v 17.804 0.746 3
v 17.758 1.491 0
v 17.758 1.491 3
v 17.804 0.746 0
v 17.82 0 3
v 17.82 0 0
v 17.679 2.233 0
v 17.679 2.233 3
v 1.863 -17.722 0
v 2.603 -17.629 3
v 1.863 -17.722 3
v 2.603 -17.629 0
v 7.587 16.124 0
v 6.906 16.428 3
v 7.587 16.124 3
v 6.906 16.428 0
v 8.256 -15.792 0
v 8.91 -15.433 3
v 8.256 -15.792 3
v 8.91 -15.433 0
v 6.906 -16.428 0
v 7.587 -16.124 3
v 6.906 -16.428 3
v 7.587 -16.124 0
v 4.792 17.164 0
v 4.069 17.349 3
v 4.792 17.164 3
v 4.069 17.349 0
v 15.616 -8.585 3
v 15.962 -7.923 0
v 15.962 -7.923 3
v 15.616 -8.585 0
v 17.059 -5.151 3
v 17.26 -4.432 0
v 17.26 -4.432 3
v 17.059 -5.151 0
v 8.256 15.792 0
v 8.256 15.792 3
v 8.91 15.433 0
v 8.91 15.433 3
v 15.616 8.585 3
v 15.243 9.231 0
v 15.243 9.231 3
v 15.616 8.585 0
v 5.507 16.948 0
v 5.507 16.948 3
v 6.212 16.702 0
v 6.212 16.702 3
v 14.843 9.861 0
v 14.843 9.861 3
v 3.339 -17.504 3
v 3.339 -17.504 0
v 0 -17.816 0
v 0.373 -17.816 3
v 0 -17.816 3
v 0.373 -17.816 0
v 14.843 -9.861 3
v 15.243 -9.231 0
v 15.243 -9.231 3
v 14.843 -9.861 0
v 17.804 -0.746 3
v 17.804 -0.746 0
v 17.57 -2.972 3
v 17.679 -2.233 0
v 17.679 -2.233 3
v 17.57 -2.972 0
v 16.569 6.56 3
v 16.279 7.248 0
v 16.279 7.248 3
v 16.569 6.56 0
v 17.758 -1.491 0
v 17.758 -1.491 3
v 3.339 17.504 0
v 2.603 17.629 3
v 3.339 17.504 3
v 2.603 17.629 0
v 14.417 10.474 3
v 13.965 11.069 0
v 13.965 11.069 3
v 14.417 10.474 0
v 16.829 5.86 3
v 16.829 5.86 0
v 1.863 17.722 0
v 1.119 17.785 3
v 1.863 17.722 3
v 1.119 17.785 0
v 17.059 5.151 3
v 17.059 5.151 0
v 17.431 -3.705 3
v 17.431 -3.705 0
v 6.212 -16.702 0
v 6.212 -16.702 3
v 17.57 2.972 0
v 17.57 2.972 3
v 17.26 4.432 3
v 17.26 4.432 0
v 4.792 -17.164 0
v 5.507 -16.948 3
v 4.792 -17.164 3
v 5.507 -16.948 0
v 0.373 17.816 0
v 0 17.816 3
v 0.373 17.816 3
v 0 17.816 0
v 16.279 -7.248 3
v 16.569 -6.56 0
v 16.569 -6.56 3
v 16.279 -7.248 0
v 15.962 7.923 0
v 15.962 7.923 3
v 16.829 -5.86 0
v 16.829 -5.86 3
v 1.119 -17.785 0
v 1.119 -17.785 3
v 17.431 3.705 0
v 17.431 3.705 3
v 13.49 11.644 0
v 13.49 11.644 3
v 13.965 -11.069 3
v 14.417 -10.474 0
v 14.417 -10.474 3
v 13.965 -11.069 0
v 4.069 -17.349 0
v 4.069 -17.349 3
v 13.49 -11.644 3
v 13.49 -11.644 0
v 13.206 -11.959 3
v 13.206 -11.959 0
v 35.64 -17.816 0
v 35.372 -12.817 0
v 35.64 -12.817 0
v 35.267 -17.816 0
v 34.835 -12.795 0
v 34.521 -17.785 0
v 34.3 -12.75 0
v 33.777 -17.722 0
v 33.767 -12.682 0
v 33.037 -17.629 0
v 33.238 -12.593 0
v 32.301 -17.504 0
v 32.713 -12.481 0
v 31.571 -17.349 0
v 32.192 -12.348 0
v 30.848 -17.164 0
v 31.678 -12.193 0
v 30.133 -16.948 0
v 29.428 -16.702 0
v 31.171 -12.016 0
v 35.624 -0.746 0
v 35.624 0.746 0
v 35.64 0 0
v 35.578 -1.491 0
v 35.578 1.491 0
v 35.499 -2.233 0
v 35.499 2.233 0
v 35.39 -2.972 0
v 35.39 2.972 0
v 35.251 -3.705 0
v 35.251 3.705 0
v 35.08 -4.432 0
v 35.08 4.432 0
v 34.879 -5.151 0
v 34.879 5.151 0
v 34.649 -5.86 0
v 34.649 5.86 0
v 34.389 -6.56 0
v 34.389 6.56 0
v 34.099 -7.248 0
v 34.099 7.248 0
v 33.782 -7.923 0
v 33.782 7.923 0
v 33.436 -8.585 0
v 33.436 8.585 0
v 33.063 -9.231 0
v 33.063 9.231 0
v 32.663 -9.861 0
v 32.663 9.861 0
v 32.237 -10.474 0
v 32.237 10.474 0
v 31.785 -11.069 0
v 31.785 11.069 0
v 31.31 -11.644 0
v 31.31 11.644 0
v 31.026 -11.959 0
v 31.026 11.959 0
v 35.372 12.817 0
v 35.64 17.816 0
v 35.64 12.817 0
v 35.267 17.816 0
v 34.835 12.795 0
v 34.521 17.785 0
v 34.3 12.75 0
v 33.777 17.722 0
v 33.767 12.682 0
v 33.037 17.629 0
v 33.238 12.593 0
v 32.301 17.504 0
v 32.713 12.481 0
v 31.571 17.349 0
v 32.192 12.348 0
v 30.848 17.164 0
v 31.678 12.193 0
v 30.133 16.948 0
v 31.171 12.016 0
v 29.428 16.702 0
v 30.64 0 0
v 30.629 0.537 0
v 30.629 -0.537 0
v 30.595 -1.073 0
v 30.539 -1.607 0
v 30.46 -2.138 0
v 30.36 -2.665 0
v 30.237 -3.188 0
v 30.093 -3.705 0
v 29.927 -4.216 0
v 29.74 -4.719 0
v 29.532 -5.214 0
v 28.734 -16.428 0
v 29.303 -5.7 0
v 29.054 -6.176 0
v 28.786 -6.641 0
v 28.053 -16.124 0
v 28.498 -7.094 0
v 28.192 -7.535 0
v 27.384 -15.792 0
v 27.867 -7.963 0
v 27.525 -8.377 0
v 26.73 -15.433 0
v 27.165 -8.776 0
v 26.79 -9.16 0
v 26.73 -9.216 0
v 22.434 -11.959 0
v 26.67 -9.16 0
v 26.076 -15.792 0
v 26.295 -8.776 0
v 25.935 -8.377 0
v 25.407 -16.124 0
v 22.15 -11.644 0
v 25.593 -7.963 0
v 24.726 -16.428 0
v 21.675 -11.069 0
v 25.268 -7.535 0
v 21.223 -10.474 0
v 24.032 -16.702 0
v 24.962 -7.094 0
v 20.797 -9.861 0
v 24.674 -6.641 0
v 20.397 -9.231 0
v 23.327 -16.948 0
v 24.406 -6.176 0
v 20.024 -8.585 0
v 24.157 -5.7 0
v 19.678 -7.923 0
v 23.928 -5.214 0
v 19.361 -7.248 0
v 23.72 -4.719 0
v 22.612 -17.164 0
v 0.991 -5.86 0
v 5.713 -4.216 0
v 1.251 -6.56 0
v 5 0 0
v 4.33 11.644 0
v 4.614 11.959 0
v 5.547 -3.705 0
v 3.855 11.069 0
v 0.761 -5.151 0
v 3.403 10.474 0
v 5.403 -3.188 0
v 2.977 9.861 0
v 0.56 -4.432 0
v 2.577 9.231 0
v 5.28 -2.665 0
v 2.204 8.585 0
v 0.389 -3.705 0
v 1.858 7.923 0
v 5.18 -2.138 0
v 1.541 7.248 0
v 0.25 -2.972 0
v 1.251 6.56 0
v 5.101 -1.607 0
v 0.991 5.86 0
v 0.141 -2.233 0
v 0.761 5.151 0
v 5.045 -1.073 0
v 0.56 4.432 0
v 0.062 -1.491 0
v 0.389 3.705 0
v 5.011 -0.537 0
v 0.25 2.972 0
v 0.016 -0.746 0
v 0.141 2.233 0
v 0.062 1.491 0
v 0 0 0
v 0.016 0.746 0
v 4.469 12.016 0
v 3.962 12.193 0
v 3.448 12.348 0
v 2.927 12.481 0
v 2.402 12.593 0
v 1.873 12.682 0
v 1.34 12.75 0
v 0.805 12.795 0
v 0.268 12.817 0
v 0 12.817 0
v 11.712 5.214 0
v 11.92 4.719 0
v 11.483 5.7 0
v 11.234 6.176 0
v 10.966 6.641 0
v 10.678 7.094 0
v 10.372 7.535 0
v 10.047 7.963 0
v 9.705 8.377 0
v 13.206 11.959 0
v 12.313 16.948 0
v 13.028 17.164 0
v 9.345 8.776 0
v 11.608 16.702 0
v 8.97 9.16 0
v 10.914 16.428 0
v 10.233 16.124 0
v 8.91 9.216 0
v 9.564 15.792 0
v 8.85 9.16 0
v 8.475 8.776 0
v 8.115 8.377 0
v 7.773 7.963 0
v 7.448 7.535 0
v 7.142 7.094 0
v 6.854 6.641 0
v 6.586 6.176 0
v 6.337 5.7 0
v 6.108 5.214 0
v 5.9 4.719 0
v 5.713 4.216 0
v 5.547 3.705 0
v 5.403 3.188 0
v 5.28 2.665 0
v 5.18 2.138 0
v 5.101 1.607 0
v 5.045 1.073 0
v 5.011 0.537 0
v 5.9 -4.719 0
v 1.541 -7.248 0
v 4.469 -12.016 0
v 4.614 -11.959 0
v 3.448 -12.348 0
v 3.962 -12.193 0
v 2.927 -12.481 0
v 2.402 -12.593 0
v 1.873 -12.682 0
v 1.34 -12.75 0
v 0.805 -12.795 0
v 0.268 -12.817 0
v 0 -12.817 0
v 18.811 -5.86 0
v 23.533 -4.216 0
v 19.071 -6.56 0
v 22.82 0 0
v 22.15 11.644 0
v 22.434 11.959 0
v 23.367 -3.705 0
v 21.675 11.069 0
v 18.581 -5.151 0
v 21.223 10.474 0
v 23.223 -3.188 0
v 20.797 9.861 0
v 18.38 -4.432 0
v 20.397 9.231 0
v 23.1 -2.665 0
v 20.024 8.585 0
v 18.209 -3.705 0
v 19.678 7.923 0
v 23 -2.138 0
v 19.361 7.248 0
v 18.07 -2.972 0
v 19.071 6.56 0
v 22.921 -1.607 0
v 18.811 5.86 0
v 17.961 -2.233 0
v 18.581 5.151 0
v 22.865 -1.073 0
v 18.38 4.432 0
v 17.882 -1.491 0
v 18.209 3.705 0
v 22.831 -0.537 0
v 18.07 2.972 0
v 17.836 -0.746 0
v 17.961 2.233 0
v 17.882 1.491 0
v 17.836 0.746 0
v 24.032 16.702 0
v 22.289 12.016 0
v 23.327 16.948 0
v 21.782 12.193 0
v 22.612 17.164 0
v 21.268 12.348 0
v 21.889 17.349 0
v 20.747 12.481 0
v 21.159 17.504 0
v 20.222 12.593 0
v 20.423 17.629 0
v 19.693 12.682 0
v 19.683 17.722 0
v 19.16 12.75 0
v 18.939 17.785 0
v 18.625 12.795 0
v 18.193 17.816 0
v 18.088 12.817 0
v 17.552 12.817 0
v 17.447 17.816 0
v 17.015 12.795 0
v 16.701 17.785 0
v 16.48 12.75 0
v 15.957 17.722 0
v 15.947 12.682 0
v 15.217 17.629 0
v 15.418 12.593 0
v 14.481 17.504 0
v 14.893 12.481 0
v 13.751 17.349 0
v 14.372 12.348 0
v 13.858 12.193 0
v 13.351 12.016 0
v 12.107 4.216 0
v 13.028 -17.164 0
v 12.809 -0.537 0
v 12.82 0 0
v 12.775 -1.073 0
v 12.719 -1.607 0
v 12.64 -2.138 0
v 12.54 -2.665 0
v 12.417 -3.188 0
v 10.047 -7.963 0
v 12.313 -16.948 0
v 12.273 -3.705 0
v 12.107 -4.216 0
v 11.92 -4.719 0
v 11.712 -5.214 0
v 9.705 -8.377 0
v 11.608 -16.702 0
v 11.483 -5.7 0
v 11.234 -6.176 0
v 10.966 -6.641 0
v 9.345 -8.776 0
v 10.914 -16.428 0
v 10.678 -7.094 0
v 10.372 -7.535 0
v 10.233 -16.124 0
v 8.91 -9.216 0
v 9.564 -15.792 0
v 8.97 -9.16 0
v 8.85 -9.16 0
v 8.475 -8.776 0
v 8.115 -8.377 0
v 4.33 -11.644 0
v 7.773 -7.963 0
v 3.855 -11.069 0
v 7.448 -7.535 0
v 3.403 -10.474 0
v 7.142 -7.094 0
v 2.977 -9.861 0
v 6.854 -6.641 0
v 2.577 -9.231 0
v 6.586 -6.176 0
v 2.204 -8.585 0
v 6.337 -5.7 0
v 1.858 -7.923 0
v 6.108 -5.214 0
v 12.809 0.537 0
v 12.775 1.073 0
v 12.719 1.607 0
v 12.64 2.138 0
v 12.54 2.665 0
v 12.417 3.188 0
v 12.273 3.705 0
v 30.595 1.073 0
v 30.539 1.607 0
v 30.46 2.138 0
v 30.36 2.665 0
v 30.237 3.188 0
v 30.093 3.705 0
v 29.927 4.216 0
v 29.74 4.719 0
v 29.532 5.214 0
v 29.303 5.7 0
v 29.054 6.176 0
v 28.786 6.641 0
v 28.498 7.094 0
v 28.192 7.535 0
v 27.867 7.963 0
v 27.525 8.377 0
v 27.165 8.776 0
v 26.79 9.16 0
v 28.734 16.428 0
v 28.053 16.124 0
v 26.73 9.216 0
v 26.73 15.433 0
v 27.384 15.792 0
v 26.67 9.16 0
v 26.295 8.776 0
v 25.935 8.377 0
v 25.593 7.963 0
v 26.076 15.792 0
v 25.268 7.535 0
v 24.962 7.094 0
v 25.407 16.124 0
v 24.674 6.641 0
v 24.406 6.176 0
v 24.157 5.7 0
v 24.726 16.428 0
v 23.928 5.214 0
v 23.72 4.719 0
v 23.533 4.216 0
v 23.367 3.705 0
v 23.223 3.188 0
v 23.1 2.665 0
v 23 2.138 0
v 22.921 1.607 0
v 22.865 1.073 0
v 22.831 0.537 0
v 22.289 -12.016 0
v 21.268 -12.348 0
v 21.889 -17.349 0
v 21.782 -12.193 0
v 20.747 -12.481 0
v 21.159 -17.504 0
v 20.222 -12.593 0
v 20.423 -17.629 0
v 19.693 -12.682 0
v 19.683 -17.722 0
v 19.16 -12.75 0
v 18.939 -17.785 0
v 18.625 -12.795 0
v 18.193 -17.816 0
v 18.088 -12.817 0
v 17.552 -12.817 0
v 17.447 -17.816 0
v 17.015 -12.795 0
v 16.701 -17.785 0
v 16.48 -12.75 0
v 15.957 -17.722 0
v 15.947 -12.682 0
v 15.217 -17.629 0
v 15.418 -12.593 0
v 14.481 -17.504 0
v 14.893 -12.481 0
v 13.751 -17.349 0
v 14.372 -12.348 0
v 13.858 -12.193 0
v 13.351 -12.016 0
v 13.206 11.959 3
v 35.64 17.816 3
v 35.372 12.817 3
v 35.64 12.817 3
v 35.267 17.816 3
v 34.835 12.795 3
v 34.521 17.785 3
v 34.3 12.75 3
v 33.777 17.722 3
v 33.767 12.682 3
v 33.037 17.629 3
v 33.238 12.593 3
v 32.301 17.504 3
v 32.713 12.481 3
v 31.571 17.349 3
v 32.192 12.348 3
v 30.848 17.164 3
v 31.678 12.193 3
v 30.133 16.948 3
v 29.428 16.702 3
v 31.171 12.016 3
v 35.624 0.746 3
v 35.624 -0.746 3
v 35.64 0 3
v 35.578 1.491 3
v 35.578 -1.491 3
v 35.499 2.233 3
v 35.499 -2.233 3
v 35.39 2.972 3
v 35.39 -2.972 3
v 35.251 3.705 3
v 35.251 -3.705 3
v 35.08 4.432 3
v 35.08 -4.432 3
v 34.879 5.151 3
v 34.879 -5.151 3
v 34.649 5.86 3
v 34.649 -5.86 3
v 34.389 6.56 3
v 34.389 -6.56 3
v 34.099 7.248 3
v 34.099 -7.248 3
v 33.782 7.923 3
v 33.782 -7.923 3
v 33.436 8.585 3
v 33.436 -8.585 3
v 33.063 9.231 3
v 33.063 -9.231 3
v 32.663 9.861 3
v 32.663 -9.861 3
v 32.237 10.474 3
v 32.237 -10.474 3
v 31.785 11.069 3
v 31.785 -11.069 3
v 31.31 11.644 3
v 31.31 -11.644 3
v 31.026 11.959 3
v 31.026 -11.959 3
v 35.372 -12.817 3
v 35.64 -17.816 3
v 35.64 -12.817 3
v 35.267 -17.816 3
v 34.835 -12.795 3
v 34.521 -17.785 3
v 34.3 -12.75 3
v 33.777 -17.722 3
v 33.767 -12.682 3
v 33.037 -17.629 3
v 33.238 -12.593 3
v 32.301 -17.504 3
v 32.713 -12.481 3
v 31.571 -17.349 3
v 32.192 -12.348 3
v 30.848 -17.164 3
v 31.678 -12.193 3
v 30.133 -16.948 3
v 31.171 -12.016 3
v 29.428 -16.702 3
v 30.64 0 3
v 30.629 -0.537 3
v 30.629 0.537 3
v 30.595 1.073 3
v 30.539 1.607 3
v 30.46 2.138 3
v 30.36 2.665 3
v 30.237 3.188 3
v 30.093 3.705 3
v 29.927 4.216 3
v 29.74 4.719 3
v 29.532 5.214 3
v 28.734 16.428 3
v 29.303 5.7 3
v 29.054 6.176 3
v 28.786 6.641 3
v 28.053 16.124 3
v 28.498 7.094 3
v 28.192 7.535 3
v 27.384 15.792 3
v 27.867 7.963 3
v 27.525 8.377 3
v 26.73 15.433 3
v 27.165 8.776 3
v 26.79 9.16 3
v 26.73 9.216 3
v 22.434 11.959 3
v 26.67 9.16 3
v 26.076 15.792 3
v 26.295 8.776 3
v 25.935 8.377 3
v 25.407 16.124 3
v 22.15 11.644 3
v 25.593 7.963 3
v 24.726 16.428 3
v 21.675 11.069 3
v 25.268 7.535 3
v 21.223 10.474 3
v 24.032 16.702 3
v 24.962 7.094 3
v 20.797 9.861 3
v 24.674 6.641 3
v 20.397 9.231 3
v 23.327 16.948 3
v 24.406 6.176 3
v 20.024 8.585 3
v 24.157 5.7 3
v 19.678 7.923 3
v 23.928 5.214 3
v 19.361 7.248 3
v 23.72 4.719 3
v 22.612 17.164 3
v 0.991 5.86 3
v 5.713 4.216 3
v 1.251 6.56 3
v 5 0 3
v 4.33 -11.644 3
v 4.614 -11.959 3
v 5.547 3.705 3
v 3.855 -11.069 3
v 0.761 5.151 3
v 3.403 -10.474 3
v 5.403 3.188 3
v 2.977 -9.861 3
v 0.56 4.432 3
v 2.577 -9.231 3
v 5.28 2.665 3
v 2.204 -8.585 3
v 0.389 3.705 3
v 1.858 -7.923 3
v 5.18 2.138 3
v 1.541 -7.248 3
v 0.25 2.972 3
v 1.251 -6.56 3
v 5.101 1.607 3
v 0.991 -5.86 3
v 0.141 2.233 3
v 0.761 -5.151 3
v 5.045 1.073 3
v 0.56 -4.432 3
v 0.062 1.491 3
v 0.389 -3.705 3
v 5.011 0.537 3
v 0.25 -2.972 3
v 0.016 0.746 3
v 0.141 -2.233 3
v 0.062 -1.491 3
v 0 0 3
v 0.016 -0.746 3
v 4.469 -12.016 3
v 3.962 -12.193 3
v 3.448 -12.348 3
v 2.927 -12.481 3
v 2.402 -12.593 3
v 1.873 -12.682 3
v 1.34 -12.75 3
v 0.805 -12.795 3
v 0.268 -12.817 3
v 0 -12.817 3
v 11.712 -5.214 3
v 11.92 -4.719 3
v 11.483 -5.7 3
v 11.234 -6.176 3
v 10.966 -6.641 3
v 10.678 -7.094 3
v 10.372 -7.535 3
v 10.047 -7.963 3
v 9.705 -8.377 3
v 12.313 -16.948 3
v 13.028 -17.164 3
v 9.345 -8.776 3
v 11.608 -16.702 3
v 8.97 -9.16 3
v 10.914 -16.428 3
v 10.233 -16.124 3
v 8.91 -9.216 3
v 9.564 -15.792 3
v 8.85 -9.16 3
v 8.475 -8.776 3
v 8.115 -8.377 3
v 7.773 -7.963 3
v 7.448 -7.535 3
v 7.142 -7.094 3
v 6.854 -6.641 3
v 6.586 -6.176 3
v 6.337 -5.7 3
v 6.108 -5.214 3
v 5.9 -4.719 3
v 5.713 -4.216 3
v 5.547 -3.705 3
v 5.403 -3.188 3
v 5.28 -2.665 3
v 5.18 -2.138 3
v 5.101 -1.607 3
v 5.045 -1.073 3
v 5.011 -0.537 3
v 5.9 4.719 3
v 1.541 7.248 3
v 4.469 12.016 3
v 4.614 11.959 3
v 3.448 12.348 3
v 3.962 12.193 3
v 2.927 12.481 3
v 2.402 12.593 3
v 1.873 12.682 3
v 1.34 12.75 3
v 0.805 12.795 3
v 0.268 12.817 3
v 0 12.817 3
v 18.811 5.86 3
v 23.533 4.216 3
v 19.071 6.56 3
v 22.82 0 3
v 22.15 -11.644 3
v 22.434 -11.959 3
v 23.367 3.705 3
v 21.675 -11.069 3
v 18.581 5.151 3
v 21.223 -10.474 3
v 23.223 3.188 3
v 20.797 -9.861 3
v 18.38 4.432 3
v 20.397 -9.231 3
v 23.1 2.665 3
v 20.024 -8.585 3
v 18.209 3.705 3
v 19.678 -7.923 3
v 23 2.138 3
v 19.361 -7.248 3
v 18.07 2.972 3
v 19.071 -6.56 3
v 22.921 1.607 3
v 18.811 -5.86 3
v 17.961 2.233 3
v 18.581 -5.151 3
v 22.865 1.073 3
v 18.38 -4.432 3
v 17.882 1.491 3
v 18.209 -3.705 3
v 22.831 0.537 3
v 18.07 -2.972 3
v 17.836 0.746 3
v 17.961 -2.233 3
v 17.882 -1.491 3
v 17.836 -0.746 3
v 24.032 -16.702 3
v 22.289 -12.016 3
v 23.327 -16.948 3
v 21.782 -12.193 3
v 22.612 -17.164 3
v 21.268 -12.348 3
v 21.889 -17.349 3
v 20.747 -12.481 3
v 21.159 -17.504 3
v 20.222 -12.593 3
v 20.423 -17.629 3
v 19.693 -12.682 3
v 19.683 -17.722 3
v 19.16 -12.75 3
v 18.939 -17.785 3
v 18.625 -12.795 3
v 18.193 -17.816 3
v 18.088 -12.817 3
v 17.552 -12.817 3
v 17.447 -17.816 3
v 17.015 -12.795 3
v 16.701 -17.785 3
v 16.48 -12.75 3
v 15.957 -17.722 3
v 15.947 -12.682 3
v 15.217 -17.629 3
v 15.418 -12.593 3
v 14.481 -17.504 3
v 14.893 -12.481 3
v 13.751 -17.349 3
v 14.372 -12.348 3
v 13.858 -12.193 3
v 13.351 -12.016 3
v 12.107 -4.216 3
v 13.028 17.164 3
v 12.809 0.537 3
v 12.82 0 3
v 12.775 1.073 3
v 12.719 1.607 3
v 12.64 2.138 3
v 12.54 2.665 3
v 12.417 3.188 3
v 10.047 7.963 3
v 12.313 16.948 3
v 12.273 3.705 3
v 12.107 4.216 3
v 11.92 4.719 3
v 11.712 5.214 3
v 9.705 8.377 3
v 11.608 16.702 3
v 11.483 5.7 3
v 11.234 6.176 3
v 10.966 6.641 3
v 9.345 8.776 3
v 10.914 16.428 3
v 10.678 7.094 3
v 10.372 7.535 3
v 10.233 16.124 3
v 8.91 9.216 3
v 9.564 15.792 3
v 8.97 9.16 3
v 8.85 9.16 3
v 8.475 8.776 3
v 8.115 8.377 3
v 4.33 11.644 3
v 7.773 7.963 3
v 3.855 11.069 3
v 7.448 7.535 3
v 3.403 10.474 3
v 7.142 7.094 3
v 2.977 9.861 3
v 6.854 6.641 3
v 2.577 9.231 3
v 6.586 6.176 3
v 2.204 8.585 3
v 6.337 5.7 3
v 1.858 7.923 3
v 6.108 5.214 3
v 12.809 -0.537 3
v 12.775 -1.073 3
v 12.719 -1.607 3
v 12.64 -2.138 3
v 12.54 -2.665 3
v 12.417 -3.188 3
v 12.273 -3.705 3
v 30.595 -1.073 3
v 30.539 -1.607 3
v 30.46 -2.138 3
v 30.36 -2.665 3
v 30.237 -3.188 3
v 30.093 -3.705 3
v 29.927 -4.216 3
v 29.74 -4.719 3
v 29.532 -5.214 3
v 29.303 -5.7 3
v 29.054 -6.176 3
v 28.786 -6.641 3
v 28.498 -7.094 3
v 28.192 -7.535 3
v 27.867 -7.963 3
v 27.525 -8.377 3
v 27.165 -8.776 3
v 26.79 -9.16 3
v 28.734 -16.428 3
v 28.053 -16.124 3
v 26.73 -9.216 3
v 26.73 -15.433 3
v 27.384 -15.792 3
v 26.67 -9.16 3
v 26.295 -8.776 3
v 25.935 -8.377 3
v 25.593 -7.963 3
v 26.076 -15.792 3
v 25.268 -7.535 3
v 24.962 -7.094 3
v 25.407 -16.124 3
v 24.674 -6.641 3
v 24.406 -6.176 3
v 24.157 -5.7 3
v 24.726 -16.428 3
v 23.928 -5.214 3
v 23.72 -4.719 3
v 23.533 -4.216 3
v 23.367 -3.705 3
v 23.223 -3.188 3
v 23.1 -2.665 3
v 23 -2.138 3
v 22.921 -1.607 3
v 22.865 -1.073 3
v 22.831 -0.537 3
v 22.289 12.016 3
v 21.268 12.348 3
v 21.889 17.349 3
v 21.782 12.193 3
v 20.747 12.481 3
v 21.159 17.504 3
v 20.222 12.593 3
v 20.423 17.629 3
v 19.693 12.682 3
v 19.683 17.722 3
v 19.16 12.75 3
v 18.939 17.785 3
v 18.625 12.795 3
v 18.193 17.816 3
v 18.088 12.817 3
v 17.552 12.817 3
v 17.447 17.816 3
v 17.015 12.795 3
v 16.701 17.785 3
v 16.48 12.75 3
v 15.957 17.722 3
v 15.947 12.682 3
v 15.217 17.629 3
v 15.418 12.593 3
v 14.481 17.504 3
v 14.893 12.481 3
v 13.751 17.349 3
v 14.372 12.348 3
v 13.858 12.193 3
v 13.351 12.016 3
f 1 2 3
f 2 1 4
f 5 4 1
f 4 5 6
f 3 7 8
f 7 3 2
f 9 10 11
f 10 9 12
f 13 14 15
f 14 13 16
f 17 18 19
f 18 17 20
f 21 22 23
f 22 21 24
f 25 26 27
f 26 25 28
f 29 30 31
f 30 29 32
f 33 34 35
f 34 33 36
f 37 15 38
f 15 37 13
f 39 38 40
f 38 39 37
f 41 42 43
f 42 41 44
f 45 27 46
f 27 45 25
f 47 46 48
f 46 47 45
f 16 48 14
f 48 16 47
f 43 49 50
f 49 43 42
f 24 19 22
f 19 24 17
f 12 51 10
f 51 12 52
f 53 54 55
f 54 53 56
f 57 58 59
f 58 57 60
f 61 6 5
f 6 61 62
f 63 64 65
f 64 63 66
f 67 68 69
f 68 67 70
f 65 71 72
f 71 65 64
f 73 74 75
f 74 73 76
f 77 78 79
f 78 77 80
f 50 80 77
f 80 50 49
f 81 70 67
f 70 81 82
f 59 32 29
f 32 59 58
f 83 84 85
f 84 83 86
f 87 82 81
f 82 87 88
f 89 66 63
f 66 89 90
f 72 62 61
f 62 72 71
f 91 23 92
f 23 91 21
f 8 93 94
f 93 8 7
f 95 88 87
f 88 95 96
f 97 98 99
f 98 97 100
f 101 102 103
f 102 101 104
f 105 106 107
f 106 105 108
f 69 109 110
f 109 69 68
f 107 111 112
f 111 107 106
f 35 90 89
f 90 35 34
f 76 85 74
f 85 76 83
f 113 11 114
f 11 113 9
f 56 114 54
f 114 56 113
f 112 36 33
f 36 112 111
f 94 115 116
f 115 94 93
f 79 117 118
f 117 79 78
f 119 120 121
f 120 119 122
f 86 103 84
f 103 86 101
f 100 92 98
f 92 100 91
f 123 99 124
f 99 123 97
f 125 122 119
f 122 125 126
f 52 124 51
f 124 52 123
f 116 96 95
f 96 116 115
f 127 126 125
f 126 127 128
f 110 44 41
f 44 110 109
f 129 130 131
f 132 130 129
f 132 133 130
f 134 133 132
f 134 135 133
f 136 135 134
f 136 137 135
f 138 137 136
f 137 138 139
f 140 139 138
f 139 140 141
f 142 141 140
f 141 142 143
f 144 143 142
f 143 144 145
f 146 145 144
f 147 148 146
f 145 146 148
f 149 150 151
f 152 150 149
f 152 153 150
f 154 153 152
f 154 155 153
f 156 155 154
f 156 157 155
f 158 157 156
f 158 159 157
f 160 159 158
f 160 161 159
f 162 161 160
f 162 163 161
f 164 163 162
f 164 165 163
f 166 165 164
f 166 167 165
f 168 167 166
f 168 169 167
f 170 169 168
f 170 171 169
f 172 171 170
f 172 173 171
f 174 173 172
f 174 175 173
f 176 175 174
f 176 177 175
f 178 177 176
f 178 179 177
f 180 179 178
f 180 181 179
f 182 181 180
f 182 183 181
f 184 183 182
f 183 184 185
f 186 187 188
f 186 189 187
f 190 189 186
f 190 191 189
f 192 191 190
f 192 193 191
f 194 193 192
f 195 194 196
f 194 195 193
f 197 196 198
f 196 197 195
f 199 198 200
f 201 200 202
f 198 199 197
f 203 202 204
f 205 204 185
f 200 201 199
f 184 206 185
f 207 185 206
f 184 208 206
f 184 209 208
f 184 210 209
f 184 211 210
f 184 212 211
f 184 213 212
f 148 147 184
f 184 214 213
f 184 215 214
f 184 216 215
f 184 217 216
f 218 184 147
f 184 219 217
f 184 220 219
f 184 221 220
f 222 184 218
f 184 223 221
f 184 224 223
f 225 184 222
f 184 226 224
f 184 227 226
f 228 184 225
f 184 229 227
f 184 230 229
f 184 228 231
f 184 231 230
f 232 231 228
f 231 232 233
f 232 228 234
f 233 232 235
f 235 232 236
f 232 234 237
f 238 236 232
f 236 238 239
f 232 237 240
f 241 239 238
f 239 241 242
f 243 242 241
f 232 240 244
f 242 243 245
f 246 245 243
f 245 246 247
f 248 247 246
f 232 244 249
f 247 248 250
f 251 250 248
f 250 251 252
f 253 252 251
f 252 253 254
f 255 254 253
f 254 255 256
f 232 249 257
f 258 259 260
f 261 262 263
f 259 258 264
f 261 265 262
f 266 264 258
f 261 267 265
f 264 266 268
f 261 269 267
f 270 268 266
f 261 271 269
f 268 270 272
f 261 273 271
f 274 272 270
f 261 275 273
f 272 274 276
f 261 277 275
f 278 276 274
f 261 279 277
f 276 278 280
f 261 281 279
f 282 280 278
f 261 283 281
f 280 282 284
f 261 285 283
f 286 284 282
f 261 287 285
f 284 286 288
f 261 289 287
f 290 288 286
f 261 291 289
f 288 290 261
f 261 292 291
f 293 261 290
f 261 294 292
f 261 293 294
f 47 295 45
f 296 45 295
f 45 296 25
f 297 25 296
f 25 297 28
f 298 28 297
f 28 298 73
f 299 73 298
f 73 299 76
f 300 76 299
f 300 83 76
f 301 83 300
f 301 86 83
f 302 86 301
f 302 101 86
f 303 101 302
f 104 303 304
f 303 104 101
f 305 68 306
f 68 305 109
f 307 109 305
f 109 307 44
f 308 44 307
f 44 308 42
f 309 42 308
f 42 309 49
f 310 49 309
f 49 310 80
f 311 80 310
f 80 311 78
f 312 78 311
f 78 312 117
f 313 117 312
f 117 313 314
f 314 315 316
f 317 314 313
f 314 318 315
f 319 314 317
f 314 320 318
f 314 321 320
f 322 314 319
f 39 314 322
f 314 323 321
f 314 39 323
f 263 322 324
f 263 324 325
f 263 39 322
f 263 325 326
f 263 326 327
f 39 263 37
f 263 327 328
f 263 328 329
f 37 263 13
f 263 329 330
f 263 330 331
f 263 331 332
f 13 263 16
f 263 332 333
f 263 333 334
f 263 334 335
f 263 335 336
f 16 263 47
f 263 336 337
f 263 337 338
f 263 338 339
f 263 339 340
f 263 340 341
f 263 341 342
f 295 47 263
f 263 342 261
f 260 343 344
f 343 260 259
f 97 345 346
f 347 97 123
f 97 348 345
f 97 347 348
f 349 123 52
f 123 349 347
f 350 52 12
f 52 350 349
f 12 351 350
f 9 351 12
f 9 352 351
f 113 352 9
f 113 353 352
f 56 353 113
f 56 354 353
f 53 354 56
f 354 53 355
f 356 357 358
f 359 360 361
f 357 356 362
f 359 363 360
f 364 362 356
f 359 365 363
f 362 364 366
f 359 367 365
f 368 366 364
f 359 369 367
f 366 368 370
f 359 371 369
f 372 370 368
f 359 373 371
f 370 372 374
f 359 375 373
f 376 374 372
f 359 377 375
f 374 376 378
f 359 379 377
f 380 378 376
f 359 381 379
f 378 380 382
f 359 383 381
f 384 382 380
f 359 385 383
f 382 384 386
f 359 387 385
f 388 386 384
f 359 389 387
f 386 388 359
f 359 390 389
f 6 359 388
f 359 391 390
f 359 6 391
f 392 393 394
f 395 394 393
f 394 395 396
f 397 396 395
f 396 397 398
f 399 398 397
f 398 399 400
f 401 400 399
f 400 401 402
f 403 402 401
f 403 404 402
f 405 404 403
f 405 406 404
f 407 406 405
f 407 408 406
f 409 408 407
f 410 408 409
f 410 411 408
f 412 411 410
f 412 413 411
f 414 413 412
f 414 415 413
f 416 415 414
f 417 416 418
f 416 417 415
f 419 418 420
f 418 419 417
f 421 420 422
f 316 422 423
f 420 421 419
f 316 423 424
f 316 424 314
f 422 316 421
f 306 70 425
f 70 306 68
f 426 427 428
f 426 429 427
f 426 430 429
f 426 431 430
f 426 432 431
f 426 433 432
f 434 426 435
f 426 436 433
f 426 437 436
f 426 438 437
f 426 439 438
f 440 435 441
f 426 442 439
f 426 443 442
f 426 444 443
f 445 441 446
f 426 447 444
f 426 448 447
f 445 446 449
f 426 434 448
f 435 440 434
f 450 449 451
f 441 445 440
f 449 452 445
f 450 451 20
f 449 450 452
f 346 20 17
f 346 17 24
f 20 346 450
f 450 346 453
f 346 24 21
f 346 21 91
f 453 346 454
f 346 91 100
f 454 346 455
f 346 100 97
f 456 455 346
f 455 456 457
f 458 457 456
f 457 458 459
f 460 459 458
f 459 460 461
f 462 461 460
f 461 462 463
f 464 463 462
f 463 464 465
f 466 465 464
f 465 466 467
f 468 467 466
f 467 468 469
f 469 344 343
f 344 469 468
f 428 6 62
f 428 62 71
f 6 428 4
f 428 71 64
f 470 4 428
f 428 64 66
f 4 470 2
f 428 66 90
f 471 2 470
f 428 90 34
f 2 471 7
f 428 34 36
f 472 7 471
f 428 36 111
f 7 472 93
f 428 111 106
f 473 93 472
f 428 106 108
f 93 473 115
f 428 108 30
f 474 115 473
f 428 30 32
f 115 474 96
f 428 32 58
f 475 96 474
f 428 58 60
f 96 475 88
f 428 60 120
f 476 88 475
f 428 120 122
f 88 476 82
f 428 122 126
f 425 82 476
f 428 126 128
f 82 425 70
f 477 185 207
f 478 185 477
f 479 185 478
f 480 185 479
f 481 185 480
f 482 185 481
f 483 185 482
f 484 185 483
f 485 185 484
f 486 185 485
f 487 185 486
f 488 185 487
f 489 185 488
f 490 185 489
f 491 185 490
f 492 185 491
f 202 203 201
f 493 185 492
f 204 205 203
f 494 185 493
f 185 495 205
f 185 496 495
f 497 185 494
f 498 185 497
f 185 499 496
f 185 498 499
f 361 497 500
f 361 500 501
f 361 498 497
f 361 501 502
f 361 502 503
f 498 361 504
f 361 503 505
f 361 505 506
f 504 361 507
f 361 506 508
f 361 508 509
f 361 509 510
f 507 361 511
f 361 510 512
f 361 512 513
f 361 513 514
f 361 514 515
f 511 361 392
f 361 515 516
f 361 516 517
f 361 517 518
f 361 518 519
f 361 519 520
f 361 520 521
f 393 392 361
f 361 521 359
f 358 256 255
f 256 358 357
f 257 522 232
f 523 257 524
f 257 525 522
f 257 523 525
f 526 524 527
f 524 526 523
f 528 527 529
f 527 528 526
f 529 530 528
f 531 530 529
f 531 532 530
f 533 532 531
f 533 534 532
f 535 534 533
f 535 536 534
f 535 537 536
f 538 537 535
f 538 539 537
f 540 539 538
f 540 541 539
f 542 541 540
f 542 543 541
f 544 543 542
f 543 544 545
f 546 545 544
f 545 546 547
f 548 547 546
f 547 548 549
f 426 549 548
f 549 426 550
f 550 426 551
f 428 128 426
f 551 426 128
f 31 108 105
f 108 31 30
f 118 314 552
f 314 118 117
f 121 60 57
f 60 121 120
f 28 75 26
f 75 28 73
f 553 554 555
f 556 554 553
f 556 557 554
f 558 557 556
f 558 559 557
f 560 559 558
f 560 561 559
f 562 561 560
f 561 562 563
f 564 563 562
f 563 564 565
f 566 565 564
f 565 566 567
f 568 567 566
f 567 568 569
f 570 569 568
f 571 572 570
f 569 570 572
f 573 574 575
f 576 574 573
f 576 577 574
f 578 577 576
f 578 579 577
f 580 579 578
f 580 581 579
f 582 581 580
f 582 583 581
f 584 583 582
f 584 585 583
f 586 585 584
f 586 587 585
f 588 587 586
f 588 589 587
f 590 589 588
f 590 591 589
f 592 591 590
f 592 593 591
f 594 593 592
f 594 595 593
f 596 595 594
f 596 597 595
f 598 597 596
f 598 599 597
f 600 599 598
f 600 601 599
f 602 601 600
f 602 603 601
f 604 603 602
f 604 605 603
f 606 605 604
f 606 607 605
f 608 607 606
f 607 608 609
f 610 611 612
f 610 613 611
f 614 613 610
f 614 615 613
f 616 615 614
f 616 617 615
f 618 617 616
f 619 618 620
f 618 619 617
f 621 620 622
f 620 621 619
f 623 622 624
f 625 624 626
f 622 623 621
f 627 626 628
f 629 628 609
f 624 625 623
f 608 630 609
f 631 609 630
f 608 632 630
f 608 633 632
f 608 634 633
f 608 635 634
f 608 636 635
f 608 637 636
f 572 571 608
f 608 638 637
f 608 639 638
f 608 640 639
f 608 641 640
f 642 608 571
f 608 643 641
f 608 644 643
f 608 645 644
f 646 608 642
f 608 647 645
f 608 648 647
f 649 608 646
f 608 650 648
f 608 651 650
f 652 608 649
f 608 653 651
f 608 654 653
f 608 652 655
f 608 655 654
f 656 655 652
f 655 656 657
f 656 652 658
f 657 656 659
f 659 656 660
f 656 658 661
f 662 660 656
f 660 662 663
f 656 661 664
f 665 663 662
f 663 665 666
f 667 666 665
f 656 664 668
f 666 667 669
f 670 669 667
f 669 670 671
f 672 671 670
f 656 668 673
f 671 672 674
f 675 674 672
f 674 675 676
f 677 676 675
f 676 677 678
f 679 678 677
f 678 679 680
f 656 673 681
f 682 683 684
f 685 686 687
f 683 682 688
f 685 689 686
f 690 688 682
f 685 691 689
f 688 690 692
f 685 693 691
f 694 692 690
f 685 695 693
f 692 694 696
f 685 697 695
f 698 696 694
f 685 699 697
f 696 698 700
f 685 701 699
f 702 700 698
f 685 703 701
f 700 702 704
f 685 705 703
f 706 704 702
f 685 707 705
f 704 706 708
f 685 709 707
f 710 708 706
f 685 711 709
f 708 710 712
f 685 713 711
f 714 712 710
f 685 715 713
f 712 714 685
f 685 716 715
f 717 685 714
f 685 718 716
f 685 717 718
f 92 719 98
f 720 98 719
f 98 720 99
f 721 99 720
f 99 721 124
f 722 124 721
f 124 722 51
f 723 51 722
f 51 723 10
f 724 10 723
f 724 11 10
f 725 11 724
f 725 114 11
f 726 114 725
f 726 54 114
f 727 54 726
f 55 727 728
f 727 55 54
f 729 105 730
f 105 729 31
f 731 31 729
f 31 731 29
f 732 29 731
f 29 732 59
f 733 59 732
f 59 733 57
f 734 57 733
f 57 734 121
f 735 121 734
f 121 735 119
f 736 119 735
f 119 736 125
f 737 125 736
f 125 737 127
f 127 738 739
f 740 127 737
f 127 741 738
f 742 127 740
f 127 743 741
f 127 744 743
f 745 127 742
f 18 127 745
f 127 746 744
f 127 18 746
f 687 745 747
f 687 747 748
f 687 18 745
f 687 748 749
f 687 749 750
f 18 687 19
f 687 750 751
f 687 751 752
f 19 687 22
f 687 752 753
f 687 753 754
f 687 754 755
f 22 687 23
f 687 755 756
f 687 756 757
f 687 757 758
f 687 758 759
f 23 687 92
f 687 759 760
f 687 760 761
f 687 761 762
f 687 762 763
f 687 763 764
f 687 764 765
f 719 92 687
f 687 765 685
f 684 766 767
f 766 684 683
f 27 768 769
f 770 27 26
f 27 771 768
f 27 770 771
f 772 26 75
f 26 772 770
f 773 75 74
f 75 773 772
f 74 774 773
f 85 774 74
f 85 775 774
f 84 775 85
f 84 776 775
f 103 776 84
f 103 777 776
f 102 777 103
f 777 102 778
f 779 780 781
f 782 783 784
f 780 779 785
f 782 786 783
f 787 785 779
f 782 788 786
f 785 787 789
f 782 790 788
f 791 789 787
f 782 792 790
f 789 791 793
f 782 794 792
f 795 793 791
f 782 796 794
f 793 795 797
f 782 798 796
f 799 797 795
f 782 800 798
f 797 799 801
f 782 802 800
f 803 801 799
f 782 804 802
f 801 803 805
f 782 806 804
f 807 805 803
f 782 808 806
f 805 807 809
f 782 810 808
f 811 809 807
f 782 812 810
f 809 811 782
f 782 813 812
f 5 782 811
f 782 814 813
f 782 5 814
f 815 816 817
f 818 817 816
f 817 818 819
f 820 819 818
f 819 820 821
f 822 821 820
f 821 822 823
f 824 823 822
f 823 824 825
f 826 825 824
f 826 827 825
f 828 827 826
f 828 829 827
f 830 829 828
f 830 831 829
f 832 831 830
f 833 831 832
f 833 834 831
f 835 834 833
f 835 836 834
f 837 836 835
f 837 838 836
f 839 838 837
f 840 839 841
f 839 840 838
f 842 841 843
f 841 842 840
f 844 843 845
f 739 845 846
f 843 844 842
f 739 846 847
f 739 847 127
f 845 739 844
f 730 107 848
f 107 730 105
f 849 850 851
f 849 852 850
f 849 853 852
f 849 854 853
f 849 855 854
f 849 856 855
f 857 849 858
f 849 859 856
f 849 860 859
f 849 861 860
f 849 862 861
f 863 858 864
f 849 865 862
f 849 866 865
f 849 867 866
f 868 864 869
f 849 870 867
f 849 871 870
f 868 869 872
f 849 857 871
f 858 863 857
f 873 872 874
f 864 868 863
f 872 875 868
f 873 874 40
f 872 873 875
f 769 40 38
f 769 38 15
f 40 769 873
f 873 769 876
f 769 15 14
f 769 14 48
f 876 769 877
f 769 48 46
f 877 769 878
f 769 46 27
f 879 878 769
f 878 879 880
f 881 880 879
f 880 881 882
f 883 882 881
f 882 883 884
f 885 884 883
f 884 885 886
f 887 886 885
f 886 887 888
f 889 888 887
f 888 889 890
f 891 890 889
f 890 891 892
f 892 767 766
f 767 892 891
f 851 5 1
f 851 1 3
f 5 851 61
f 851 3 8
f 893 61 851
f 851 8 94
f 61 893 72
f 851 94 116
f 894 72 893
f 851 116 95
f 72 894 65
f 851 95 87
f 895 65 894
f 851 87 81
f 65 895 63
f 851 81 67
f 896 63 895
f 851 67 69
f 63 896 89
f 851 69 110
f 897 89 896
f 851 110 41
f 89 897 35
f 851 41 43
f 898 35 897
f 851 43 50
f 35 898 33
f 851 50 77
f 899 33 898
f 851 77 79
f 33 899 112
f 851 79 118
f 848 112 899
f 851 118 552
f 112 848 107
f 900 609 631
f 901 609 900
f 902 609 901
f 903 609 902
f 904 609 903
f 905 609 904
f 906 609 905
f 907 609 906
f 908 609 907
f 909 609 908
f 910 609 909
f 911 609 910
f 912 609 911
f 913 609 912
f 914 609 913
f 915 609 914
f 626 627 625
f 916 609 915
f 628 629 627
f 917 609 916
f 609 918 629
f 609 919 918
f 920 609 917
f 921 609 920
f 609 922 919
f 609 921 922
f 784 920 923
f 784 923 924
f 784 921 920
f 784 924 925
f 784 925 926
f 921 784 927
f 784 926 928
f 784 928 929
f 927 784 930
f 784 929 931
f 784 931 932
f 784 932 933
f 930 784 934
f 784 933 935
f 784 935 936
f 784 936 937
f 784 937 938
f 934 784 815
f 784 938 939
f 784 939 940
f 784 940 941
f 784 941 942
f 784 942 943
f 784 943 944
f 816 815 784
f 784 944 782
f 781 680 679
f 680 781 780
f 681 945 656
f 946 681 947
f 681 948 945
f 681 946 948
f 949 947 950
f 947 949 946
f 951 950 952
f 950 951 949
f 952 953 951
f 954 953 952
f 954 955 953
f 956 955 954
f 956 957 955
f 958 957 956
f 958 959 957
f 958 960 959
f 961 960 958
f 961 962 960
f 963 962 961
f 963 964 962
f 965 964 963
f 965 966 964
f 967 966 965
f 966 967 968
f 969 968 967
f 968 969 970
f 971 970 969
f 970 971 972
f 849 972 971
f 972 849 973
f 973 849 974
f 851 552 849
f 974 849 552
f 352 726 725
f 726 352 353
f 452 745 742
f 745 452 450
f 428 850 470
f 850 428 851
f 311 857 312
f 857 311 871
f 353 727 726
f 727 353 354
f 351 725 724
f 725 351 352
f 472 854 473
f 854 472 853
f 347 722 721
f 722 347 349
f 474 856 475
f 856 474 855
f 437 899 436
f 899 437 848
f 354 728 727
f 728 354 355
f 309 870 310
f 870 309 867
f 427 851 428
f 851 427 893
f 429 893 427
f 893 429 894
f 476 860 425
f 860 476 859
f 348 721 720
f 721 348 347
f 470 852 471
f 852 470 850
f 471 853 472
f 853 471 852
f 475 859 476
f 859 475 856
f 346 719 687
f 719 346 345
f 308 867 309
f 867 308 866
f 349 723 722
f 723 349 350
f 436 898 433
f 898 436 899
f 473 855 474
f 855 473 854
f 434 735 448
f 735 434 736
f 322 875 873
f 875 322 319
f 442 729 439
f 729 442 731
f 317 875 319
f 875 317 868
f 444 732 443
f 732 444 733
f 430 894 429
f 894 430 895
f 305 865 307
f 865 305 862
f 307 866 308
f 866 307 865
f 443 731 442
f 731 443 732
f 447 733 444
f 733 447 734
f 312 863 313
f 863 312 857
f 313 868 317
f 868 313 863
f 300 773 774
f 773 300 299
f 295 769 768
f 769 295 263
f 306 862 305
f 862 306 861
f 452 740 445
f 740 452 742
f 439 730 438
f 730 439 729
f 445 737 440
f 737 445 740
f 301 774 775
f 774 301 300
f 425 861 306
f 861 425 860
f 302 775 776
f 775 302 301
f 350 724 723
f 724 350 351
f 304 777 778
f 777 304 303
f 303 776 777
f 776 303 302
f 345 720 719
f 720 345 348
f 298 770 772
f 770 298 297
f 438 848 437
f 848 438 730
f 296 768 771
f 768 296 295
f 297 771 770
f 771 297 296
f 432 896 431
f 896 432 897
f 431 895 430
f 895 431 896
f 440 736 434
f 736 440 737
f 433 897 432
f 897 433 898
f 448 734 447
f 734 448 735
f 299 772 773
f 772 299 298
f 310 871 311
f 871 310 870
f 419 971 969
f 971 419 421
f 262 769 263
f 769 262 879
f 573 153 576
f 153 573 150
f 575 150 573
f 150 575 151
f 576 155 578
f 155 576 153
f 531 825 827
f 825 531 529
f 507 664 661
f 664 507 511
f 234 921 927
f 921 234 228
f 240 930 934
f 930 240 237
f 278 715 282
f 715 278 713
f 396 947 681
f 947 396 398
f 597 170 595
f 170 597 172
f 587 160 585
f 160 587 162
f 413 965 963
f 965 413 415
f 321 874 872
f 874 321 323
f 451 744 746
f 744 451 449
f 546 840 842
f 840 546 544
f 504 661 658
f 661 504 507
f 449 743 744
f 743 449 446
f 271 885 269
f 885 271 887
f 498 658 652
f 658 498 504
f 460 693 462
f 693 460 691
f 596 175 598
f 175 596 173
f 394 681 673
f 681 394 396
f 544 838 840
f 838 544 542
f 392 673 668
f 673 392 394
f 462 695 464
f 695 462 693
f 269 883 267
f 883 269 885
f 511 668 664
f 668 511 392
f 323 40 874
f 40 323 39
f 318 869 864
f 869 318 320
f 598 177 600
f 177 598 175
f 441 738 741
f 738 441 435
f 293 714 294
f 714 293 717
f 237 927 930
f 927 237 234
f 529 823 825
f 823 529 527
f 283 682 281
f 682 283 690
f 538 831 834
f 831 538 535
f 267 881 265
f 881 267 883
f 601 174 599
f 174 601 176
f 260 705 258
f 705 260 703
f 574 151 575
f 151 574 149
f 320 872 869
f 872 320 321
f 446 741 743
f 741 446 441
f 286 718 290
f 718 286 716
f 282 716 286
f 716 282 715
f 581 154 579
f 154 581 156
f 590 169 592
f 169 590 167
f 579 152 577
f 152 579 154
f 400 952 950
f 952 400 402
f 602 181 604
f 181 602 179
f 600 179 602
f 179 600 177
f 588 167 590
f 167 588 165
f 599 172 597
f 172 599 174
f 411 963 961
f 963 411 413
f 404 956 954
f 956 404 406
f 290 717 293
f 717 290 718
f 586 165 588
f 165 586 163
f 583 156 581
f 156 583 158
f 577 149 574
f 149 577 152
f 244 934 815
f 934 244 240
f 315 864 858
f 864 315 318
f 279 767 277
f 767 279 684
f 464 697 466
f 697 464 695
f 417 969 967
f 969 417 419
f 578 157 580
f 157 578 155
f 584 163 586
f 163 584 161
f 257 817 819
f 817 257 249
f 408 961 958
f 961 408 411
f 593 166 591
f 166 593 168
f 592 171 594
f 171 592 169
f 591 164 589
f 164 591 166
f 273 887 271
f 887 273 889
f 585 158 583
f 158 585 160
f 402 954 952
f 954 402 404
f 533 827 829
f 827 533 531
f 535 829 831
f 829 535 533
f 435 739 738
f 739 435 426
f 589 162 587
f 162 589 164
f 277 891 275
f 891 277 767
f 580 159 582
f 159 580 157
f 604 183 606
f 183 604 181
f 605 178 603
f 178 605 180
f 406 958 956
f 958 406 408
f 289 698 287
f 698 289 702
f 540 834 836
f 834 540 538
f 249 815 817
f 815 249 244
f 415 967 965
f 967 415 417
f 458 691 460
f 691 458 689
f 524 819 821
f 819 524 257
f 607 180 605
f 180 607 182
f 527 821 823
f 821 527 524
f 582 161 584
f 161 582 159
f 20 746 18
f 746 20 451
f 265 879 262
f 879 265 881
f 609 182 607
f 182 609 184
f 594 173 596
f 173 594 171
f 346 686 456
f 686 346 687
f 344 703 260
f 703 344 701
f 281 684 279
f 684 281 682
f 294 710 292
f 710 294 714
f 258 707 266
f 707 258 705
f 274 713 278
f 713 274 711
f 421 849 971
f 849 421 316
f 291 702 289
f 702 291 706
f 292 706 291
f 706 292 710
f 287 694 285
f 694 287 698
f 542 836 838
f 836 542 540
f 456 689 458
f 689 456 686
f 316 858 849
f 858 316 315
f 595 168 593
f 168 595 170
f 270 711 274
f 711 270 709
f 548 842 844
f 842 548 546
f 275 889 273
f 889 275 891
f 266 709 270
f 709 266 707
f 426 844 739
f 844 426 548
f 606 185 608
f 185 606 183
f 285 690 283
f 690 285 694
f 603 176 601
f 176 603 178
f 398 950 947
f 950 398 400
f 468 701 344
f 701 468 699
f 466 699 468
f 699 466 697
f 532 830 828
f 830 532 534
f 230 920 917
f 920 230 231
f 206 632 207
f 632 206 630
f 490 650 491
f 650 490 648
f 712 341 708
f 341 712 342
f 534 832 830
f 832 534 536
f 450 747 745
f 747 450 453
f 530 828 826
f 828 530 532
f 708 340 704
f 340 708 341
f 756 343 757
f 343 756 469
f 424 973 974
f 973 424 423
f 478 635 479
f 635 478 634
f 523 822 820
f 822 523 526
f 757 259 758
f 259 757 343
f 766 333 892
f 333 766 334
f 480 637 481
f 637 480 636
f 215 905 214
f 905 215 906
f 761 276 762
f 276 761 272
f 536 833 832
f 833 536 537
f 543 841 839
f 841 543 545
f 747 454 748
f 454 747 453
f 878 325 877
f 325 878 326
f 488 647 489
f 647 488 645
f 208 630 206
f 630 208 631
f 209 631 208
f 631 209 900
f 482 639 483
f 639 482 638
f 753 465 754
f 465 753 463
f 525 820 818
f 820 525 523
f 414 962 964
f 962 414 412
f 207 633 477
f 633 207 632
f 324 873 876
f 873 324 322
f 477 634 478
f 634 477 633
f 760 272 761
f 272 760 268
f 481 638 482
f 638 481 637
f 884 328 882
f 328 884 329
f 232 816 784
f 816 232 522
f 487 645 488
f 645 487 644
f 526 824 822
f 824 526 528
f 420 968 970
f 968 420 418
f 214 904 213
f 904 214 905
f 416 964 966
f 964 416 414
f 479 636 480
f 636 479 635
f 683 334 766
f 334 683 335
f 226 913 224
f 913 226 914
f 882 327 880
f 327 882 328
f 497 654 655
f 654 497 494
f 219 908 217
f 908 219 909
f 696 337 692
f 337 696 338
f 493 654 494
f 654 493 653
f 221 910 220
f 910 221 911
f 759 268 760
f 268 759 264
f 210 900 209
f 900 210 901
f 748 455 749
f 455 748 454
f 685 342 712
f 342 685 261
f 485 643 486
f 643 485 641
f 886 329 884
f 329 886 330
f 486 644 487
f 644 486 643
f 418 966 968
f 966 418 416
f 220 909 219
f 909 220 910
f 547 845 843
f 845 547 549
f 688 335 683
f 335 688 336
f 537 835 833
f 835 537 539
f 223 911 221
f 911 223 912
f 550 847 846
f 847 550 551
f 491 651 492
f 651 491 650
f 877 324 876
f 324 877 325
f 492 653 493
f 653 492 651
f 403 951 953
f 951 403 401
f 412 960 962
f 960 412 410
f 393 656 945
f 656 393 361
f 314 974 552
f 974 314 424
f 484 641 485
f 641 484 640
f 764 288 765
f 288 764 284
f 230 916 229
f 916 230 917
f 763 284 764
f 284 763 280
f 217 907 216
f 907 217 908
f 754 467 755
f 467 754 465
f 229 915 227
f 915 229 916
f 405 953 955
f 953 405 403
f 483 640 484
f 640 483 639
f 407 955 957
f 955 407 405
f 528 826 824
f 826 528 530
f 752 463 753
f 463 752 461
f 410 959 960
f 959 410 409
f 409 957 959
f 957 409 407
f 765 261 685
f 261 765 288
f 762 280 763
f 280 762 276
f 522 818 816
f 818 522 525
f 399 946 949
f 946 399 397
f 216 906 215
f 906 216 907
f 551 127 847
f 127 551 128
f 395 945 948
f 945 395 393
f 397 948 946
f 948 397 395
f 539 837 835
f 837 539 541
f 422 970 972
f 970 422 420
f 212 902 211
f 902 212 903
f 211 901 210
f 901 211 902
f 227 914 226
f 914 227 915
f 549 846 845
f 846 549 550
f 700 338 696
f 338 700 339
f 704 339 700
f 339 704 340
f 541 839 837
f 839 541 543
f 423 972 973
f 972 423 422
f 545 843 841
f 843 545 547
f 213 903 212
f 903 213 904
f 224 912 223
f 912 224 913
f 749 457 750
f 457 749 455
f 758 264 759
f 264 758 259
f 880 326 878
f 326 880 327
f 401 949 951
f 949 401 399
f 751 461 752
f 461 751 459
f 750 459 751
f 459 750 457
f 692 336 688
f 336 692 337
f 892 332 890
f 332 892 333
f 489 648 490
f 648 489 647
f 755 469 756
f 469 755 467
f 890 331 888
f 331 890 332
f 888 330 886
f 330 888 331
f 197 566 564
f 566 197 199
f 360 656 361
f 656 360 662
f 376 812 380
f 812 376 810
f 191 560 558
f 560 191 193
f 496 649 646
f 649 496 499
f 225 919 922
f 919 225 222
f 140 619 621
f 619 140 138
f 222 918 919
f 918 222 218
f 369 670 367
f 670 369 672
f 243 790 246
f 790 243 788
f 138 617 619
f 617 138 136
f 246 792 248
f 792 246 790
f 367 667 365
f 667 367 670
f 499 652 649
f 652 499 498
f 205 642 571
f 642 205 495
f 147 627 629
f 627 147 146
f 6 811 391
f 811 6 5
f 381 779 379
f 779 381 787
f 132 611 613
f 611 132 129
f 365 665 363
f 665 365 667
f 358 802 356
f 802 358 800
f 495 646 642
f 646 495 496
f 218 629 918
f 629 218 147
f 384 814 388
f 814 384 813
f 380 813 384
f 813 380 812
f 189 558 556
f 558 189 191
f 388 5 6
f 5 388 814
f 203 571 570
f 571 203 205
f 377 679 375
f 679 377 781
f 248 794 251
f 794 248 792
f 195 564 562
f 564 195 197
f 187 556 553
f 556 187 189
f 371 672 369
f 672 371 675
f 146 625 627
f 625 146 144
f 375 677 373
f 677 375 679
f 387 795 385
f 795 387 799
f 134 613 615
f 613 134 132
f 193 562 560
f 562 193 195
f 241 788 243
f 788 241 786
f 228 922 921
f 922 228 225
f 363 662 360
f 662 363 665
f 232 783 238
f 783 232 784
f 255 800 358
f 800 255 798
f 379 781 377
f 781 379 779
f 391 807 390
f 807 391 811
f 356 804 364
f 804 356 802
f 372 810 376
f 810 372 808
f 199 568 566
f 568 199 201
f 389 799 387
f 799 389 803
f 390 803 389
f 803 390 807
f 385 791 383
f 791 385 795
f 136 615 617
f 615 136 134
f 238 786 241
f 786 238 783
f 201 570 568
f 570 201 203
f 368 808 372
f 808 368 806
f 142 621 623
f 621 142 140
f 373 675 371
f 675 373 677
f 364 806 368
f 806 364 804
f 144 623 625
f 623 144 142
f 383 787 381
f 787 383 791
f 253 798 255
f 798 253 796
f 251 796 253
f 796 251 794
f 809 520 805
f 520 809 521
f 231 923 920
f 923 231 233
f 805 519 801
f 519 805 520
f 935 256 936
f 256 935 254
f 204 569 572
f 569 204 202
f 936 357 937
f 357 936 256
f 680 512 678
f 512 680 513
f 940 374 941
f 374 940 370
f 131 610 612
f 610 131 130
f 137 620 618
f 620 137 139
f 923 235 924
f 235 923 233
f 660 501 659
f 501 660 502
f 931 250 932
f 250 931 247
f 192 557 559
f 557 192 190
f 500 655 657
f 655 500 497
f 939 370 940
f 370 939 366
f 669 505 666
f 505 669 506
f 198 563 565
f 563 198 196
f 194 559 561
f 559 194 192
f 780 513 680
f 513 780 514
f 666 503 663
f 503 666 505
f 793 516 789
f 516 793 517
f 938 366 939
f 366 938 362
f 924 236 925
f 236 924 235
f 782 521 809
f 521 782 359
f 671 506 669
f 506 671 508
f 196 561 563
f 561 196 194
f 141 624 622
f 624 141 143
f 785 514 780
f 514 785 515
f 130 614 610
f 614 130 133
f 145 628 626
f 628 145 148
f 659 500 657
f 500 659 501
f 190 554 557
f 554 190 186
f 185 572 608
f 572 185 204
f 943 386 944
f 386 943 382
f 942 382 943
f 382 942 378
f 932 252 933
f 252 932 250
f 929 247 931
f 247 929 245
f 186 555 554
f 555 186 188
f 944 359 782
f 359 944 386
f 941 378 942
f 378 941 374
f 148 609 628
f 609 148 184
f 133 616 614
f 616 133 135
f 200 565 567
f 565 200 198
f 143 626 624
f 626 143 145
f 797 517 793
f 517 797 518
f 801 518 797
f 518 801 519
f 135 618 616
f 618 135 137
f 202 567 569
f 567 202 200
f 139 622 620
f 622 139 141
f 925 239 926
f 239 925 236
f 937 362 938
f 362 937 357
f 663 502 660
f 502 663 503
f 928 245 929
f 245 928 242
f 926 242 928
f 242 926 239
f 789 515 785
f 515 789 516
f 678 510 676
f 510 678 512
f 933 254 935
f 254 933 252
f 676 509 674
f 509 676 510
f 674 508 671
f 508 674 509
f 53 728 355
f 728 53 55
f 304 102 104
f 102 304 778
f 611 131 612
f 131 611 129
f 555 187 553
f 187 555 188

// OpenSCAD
$fn=150;
width =  35.64; //52.17 -11.68 - 2.85;  
lenght = width/2;
thick = 3;

tweak = 0;
repeat = 2;

//cube( [ lenght, width - tweak, 2]);

echo ("final width = ", width - tweak, " mm");


module make1(height, rads)
{
    difference()
    {
        cylinder( h = height, r= rads/2);
        cylinder( h = height, r= rads/2 - 5);
    }
}

module make2(height, rads)
{
    difference()
    {
        #cylinder( h = height, r= rads/2);
        cylinder( h = height, r= rads/2 - 5);
    }
}

difference()
{
    union()
    {
        for (x = [ 0: 1: repeat] )
        {
            translate( [ x * width/2, 0, 0])
            make1(height = thick, rads = width );
        }
    }
    
    // chop end pieces
    union ()
    {
        color("PURPLE", .1)
        {
            translate( [-width/2, 0  , 0] )
            cube([width, width, thick *2], center = true);

            translate( [ +width * (repeat+1)/2, 0 , 0] )
            cube([width, width, thick * 2], center = true);
        }
    }
}
/*
color("BLUE")
{
    
    intersection()
    {
        translate( [ width/2, 0, 0 ])
        make1(height = thick, rads = width - 10);
        translate( [ 0, 0, 0 ])
        make1(height = thick, rads = width - 10);
    }
    
    intersection()
    {
        translate( [ width/2, 0, 0 ])
        make1(height = thick, rads = width - 10);
        translate( [ width, 0, 0] )
        make1(height = thick, rads = width - 10);
    }
}
*/
